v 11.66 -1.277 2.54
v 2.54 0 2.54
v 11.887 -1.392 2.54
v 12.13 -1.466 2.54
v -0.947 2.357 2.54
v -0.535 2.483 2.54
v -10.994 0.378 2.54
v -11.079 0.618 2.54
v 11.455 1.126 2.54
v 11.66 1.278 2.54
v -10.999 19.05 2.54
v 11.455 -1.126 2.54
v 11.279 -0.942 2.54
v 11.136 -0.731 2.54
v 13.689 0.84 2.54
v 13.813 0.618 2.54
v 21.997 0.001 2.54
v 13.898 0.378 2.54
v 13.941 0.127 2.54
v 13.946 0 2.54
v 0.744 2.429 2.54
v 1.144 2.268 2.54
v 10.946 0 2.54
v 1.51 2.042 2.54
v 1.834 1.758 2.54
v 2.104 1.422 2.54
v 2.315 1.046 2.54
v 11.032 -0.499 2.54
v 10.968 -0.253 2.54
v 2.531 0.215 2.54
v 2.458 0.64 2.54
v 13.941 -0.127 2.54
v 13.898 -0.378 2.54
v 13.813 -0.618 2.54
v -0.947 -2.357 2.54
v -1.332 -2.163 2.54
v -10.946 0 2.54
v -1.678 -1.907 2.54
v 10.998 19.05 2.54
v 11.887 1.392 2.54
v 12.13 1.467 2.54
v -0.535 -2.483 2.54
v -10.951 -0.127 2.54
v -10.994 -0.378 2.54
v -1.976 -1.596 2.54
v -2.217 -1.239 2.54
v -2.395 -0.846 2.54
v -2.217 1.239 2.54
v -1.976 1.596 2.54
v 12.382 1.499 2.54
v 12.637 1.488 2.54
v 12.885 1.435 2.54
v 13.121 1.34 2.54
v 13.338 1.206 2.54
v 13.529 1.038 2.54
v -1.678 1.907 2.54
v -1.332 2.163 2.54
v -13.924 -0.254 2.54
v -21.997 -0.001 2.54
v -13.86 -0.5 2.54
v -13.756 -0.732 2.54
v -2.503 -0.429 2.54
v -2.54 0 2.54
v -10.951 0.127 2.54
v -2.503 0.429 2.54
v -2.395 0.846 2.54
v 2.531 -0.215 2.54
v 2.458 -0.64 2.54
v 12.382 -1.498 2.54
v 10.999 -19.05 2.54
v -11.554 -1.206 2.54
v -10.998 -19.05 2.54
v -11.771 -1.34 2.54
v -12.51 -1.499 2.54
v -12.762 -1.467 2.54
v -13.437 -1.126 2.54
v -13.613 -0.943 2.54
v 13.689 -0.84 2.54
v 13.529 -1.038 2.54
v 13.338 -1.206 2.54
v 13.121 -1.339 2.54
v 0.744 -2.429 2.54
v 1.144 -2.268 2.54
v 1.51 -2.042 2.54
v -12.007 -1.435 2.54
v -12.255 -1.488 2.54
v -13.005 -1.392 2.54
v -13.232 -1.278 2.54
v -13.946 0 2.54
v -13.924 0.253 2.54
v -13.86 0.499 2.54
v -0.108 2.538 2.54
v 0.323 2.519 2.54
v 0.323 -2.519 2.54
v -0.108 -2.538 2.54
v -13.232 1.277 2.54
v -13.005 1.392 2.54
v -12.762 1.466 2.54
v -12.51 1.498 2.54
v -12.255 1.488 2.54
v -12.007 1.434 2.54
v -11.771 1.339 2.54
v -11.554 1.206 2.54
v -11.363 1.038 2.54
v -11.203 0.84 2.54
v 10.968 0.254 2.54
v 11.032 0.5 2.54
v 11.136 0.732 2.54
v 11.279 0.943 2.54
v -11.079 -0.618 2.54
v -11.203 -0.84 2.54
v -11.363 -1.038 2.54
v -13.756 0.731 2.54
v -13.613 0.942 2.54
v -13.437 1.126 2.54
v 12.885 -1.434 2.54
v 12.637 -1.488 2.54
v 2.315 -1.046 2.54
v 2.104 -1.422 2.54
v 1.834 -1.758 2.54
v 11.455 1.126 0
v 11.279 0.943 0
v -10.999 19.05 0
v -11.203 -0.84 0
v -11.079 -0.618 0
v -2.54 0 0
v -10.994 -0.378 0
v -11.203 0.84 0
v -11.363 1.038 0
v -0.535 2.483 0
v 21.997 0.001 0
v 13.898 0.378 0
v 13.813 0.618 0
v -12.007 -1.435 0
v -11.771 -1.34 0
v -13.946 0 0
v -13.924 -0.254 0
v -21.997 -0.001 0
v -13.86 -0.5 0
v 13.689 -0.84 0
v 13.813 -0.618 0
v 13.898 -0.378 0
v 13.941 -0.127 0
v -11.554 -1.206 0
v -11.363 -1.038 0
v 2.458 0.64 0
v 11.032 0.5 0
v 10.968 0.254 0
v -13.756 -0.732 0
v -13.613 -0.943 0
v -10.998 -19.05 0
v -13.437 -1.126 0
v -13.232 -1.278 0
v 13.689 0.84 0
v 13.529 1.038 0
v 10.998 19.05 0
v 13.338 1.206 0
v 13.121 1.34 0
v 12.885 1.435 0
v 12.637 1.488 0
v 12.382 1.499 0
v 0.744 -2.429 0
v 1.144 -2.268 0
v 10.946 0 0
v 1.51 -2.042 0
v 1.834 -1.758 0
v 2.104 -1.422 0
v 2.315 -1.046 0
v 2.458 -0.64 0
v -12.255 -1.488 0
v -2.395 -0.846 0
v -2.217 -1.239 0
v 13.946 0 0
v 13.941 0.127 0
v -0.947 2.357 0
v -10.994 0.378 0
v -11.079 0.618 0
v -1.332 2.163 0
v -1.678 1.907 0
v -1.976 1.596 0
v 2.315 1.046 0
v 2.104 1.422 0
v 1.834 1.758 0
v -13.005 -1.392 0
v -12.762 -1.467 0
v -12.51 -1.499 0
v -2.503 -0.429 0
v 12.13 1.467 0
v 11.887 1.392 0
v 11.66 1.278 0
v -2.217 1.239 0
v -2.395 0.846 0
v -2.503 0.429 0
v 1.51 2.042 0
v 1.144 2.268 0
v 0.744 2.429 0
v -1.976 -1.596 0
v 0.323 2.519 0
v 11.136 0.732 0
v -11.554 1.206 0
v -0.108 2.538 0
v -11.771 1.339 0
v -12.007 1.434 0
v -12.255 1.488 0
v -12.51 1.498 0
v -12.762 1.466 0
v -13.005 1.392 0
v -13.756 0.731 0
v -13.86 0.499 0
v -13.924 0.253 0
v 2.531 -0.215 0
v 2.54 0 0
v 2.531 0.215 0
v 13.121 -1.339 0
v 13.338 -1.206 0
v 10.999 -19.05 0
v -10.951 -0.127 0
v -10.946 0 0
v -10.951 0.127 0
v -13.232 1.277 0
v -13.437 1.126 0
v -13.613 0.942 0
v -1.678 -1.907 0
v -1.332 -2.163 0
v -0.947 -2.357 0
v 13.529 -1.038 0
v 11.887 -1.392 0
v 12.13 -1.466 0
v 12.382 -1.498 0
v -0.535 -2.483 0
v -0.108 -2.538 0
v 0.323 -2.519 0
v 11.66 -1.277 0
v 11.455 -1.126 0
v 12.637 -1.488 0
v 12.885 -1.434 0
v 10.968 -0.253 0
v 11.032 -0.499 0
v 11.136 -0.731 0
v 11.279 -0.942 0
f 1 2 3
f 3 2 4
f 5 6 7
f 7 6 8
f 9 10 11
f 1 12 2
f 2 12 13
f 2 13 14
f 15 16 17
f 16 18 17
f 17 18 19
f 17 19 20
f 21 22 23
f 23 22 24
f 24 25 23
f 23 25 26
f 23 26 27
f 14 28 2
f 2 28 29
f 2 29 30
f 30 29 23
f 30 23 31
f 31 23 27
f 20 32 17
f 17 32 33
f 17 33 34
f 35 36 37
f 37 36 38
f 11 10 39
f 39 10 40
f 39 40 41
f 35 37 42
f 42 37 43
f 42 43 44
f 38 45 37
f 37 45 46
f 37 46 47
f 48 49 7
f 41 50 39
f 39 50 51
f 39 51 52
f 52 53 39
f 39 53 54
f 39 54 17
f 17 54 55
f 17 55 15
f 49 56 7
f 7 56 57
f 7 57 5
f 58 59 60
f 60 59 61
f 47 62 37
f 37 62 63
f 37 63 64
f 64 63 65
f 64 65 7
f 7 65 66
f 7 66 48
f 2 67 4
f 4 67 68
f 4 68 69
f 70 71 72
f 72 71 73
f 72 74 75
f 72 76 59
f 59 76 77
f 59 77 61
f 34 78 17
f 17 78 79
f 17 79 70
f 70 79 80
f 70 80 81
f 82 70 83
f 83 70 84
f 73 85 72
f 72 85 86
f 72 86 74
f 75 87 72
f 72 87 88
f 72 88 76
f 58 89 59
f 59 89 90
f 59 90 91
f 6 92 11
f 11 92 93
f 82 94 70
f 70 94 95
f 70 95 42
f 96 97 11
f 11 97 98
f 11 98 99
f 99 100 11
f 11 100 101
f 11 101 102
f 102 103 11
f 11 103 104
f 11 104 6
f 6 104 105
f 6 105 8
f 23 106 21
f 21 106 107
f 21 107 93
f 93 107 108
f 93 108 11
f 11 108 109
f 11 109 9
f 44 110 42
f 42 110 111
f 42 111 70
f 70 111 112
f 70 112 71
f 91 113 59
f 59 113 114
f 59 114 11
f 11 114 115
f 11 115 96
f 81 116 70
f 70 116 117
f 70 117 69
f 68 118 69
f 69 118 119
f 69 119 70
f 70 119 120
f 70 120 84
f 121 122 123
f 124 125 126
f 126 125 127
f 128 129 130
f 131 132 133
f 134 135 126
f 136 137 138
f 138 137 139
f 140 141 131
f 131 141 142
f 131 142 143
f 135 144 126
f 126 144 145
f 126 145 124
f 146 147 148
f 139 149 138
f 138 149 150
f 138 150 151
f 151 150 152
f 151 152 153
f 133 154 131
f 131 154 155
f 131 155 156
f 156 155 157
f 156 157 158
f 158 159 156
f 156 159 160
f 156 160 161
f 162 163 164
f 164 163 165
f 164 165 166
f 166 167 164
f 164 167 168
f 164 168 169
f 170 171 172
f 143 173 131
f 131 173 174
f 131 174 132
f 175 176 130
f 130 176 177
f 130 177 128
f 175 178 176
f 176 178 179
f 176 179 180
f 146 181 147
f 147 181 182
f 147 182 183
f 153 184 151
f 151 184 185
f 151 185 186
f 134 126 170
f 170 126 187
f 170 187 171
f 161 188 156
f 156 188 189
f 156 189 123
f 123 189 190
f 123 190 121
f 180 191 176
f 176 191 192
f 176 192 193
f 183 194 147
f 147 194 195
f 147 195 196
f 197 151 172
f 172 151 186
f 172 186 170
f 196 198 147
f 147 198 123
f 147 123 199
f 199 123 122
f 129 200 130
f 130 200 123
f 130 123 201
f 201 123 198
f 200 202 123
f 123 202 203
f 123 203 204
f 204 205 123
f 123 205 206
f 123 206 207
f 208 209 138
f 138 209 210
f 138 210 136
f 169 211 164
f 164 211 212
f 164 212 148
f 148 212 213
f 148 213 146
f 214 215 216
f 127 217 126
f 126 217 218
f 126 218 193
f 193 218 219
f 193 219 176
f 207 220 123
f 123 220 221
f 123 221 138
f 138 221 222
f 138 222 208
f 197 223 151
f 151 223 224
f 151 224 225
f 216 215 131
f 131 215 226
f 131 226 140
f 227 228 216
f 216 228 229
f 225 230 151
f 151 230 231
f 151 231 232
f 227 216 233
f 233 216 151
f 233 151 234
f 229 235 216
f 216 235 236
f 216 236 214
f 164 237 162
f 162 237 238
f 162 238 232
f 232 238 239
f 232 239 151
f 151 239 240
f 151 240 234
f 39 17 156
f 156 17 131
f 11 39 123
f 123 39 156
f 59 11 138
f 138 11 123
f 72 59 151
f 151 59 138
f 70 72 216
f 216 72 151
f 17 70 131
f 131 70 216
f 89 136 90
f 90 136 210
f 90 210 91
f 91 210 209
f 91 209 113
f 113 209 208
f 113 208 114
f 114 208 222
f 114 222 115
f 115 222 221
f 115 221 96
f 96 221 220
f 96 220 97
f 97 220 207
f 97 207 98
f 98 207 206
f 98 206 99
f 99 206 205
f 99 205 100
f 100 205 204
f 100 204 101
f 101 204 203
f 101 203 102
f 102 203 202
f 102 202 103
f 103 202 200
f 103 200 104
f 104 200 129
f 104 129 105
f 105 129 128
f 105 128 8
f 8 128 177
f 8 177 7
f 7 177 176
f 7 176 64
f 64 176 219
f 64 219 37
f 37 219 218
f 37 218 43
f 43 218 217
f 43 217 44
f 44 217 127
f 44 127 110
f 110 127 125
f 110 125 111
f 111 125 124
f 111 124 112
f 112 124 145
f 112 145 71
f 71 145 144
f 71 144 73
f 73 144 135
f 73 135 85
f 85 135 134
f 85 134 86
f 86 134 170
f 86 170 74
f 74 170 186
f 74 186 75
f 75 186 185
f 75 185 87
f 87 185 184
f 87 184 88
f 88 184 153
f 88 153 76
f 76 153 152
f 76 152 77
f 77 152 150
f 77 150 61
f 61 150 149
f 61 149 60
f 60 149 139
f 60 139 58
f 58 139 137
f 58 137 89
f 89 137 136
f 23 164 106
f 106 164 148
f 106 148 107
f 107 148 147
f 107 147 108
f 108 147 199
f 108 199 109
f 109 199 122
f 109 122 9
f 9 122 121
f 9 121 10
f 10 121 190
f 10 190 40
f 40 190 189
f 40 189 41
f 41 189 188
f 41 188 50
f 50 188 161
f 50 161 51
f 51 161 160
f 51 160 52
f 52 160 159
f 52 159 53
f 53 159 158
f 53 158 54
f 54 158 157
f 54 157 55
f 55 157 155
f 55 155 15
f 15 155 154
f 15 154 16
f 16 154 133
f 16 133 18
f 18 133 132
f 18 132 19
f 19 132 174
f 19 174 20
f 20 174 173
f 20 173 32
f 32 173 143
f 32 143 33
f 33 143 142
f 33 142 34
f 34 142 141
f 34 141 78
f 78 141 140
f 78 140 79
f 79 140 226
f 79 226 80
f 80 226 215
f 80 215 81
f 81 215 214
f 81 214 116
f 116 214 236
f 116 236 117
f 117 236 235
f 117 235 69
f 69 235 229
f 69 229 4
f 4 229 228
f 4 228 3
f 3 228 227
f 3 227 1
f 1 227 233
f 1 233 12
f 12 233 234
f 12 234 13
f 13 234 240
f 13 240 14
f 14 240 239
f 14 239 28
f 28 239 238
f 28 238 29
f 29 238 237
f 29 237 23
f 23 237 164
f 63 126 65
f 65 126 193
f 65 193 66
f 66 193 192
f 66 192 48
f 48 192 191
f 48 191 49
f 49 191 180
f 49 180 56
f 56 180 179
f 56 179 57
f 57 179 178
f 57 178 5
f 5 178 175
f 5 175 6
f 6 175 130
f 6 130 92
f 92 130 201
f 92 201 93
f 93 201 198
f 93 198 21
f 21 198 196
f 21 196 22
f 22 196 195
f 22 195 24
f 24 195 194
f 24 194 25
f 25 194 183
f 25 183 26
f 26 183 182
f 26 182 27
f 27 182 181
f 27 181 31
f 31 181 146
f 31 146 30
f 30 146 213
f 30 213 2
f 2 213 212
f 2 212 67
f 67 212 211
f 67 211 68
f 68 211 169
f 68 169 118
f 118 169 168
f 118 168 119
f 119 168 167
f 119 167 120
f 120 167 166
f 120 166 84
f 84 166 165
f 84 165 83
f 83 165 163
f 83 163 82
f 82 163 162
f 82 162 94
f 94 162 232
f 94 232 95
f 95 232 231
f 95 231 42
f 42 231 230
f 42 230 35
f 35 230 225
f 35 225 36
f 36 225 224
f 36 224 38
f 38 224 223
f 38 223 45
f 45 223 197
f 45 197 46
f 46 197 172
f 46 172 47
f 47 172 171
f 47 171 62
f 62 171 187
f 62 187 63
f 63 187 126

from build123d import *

# Parameters (mm, degrees)
SKETCH1_R           = 1.5
SKETCH1_R_2         = 1.499997
SKETCH1_R_3         = 2.54
BOSS_EXTRUDE1_DEPTH = 2.54


with BuildPart() as part:
    # Sketch1 → Boss-Extrude1 (new body)
    with BuildSketch(Plane.XY):
        Polygon((10.998084257, 19.050253087), (-10.998960994, 19.049746903), (-21.99704525, -0.000506184), (-10.998084257, -19.050253087), (10.998960994, -19.049746903), (21.99704525, 0.000506184), align=None)
        with Locations((-12.445999997, -0.000286401)):
            Circle(SKETCH1_R, mode=Mode.SUBTRACT)
        with Locations((12.445999997, 0.000286401)):
            Circle(SKETCH1_R_2, mode=Mode.SUBTRACT)
        Circle(SKETCH1_R_3, mode=Mode.SUBTRACT)
    extrude(amount=BOSS_EXTRUDE1_DEPTH)


solid = part.part
